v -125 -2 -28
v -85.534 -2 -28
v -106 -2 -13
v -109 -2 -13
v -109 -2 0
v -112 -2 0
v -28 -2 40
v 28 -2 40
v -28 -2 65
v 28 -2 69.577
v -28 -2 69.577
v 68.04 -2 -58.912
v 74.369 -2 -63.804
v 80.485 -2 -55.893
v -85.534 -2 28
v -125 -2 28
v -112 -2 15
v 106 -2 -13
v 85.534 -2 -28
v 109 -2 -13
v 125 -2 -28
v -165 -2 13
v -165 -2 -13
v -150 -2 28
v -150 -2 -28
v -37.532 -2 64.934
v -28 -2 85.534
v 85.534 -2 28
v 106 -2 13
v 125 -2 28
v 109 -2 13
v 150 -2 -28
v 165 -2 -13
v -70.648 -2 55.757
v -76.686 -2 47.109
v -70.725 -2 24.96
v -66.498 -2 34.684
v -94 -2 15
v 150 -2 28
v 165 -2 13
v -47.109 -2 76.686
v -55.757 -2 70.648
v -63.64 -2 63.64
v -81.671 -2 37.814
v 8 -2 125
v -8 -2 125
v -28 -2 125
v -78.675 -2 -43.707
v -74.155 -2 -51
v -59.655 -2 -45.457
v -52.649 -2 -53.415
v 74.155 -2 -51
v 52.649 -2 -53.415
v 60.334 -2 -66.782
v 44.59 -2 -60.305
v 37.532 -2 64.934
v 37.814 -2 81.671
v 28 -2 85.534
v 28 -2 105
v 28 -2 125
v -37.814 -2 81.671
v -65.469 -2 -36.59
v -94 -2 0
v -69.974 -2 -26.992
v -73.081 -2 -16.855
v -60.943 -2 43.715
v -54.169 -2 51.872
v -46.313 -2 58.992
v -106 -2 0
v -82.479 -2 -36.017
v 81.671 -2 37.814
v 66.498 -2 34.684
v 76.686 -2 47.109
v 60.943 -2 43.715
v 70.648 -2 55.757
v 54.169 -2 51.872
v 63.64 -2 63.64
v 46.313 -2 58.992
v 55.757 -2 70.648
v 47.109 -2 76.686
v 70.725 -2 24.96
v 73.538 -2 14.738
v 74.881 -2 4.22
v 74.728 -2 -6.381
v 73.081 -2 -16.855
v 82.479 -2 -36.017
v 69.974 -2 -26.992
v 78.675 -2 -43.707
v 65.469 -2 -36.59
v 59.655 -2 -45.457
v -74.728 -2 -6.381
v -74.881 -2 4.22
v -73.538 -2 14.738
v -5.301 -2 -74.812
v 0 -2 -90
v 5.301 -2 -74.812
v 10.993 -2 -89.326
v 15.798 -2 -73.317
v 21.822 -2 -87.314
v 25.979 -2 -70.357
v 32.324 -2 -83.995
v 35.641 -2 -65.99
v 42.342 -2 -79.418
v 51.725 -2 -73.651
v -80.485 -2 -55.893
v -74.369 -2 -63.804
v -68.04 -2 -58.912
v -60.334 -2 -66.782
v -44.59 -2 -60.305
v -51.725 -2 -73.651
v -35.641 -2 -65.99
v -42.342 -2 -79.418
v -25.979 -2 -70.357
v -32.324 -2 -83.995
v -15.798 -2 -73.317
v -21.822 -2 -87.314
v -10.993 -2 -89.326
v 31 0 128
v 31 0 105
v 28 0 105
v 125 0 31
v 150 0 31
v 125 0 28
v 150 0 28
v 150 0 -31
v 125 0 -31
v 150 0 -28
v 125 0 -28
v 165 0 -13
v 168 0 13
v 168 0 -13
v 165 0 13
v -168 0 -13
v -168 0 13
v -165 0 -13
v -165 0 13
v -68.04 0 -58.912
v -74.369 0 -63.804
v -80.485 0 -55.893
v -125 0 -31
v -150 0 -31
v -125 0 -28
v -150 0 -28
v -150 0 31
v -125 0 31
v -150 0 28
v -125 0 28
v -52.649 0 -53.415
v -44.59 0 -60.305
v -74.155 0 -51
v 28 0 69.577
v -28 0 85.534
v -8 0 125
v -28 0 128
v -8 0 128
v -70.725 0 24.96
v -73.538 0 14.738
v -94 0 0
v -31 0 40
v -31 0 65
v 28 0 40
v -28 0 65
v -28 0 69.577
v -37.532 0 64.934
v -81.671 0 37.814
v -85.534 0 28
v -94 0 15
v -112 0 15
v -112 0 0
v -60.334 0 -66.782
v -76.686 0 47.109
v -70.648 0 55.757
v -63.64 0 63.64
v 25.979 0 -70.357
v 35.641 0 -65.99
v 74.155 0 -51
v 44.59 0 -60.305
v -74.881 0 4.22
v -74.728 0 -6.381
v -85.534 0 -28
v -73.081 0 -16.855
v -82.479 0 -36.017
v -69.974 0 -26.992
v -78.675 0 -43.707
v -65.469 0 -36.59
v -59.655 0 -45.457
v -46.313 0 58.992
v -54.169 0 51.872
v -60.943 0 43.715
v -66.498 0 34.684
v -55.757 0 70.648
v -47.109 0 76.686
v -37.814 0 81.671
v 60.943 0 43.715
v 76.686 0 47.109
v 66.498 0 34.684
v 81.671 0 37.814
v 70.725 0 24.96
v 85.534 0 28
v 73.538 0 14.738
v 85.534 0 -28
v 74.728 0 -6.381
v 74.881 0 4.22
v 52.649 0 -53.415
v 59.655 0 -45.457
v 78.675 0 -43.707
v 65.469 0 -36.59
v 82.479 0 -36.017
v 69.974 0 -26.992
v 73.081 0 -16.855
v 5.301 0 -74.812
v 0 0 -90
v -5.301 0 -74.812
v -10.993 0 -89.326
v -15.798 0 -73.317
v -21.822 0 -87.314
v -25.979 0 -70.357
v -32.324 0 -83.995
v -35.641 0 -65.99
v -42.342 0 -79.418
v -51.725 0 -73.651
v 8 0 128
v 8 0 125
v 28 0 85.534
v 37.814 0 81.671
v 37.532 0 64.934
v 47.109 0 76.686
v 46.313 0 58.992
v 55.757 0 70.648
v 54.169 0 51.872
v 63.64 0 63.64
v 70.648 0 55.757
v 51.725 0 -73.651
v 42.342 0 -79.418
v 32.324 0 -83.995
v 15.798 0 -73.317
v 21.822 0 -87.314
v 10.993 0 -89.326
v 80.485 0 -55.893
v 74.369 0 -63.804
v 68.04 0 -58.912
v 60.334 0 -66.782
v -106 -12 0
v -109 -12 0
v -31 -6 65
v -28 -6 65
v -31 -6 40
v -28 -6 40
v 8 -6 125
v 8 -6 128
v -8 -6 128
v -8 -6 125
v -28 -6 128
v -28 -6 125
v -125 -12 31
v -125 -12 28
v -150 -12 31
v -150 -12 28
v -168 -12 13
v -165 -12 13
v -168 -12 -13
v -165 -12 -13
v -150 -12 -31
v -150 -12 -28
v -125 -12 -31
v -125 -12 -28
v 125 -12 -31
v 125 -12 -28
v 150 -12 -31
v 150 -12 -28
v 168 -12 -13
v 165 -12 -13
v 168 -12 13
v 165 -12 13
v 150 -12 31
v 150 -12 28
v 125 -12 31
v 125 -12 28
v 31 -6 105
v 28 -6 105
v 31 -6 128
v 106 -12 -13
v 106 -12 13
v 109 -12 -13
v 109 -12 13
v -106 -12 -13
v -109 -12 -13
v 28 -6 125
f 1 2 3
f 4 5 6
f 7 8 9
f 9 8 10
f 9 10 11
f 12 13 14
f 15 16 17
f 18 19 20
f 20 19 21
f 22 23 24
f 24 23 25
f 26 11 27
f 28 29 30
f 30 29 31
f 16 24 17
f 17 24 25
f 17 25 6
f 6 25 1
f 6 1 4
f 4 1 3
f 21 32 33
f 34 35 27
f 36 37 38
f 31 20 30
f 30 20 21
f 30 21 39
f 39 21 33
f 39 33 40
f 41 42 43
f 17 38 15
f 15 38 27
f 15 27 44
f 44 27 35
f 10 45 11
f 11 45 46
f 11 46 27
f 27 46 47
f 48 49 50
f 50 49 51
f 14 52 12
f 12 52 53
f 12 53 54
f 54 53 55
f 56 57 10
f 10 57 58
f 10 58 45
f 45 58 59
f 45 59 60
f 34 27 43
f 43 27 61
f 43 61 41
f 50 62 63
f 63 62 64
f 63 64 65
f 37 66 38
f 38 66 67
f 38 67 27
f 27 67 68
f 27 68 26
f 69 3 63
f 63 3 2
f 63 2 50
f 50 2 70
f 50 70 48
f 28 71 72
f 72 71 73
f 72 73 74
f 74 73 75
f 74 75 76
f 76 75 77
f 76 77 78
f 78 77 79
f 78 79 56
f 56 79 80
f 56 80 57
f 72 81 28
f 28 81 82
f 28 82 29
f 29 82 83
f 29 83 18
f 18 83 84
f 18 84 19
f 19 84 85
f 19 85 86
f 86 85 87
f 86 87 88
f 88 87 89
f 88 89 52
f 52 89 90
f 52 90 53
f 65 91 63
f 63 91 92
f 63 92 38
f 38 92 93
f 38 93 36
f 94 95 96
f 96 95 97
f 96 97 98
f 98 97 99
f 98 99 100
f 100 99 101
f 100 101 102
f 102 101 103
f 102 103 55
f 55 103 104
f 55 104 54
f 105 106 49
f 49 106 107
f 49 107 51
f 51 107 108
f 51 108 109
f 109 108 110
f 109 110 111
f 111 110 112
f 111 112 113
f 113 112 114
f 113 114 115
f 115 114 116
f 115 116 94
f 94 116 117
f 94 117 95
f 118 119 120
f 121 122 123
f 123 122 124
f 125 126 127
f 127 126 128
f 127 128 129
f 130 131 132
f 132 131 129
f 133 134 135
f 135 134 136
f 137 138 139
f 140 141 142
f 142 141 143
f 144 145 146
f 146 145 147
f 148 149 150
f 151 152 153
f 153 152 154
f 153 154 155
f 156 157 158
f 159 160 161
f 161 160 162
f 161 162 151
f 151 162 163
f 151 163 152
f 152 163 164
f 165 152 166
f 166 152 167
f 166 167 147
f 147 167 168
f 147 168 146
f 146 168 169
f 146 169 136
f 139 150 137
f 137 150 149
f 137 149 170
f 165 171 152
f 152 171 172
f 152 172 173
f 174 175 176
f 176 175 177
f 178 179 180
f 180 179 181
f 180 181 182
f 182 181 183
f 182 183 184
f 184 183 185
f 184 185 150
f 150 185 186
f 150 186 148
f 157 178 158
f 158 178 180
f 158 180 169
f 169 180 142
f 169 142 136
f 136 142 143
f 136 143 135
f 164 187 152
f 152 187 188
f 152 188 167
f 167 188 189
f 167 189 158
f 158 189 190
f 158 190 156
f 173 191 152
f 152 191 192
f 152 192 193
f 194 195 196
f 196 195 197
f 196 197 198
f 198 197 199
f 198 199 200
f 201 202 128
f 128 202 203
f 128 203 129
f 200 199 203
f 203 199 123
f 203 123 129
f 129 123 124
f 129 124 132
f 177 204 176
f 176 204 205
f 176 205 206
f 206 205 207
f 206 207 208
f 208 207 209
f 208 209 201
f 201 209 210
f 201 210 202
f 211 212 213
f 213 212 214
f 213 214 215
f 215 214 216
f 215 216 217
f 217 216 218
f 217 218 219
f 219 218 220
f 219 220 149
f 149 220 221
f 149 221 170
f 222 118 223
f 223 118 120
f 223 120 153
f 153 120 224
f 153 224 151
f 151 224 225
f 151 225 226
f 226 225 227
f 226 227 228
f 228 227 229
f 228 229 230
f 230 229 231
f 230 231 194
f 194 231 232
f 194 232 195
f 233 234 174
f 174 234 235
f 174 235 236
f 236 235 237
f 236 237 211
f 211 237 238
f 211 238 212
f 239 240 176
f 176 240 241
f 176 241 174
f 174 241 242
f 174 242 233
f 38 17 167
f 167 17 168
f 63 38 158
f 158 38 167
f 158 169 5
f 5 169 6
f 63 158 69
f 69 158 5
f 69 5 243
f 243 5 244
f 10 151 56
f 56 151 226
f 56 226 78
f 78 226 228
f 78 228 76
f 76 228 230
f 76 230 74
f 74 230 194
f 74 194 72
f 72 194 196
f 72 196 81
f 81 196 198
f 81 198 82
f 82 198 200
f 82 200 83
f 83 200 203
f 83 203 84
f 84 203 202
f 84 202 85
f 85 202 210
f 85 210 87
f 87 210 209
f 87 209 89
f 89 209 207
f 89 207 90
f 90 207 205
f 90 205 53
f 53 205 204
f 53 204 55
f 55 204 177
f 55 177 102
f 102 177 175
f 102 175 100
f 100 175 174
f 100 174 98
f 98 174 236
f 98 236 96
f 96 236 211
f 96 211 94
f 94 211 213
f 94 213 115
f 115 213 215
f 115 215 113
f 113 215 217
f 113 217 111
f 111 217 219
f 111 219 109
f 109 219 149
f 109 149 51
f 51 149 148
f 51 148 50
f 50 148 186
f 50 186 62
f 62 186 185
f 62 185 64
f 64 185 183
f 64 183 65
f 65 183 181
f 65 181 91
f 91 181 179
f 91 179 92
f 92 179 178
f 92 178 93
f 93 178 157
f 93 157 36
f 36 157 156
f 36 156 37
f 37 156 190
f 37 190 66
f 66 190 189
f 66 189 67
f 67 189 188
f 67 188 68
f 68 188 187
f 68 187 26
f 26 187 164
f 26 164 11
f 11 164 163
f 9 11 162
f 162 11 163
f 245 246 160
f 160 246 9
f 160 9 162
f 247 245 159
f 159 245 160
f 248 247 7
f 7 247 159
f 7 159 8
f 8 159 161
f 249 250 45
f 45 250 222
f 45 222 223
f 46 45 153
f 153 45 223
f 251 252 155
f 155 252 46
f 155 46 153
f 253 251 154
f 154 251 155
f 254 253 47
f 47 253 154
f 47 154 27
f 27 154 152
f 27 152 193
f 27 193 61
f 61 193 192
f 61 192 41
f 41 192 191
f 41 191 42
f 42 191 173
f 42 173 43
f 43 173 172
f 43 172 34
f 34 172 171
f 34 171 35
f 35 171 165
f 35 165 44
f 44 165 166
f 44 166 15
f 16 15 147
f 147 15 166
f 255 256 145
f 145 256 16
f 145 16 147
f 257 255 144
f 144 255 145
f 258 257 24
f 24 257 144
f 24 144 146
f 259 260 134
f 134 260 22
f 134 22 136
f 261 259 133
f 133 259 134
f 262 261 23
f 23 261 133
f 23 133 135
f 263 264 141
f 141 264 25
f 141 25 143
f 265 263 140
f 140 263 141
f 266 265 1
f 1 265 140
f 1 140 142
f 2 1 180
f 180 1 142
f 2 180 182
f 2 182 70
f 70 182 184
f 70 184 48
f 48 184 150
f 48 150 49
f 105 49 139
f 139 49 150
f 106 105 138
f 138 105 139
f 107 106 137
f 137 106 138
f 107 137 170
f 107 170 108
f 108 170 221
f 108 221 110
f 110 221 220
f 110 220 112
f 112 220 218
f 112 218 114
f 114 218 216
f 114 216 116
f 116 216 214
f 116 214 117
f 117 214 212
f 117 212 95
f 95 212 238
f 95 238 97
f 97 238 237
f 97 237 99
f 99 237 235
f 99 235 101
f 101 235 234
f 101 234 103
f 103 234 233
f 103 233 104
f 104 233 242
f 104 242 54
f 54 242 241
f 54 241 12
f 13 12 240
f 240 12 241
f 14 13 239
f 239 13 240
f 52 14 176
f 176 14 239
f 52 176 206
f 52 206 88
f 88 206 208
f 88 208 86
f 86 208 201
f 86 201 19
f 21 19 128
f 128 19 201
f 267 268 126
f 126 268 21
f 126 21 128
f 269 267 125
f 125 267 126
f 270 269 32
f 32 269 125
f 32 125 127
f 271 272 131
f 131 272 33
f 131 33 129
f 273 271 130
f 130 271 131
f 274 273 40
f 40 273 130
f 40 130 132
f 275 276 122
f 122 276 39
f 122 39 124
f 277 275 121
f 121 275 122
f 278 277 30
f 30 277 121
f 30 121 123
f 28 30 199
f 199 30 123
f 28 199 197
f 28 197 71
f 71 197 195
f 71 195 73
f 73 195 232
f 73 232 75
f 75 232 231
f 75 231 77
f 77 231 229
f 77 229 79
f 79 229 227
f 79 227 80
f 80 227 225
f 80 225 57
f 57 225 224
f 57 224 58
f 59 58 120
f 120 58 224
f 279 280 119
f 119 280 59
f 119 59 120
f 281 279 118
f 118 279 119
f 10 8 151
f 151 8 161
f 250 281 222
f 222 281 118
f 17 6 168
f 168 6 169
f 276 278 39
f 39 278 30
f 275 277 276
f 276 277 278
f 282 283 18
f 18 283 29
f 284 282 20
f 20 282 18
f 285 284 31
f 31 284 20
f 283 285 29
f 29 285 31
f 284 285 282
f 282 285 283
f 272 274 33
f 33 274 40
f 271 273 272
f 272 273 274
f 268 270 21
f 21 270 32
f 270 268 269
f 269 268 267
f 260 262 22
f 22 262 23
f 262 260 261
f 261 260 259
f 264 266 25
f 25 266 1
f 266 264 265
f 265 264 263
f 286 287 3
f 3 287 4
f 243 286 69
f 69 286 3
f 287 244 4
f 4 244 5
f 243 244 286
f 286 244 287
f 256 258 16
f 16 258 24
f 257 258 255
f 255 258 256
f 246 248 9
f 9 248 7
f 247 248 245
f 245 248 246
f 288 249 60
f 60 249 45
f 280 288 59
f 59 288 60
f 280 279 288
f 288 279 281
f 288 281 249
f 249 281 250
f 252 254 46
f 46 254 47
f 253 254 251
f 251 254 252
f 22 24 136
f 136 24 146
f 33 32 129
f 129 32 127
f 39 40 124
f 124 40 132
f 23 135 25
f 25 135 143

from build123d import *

# Parameters (mm, degrees)
SKETCH1_W           = 25
SKETCH1_H           = 3
SKETCH1_W_2         = 3
SKETCH1_H_2         = 9
SKETCH1_W_3         = 4
SKETCH1_H_3         = 4
SKETCH1_H_4         = 15
SKETCH1_W_4         = 20
SKETCH1_H_5         = 25
SKETCH1_H_6         = 13
BOSS_EXTRUDE3_DEPTH = 2
SKETCH2_W           = 25
SKETCH2_H           = 3
SKETCH2_W_2         = 3
SKETCH2_H_2         = 26
SKETCH2_H_3         = 13
BOSS_EXTRUDE4_DEPTH = 10
SKETCH3_W           = 3
SKETCH3_H           = 25
SKETCH3_H_2         = 20
SKETCH3_W_2         = 23
SKETCH3_H_3         = 3
SKETCH3_W_3         = 20
BOSS_EXTRUDE5_DEPTH = 4
CUT_EXTRUDE1_DEPTH  = 10


with BuildPart() as part:
    # Sketch1 → Boss-Extrude3 (new body)
    with BuildSketch(Plane(origin=(0, 0, 0), x_dir=(1, 0, 0), z_dir=(0, 1, 0))):
        with BuildLine():
            ThreePointArc((-90, 0), (-88.904443084, -14), (-85.644444444, -27.65916007))
            ThreePointArc((-85.644444444, -27.65916007), (-78.335965046, -25.45486768), (-71.894444444, -21.35857809))
            ThreePointArc((-71.894444444, -21.35857809), (-74.219550434, -10.791586229), (-75, 0))
            Line((-75, 0), (-90, 0))
        make_face()
        with BuildLine():
            ThreePointArc((-85.644444444, 27.65916007), (-88.904443084, 14), (-90, 0))
            Line((-90, 0), (-75, 0))
            ThreePointArc((-75, 0), (-74.219550434, 10.791586229), (-71.894444444, 21.35857809))
            ThreePointArc((-71.894444444, 21.35857809), (-78.335965046, 25.45486768), (-85.644444444, 27.65916007))
        make_face()
        with BuildLine():
            ThreePointArc((-90, 0), (-88.904443084, -14), (-85.644444444, -27.65916007))
            ThreePointArc((-85.644444444, -27.65916007), (-78.335965046, -25.45486768), (-71.894444444, -21.35857809))
            ThreePointArc((-71.894444444, -21.35857809), (-74.219550434, -10.791586229), (-75, 0))
            Line((-75, 0), (-90, 0))
        make_face()
        with BuildLine():
            ThreePointArc((-85.644444444, 27.65916007), (-88.904443084, 14), (-90, 0))
            Line((-90, 0), (-75, 0))
            ThreePointArc((-75, 0), (-74.219550434, 10.791586229), (-71.894444444, 21.35857809))
            ThreePointArc((-71.894444444, 21.35857809), (-78.335965046, 25.45486768), (-85.644444444, 27.65916007))
        make_face()
        with BuildLine():
            ThreePointArc((-85.644444444, -27.65916007), (-85.589201448, -27.829635202), (-85.533619121, -28))
            Line((-85.533619121, -28), (-69.577295147, -28))
            ThreePointArc((-69.577295147, -28), (-70.813772651, -24.706468849), (-71.894444444, -21.35857809))
            ThreePointArc((-71.894444444, -21.35857809), (-78.335965046, -25.45486768), (-85.644444444, -27.65916007))
        make_face()
        with BuildLine():
            ThreePointArc((-85.533619121, -28), (-63.639610307, -63.639610307), (-28, -85.533619121))
            Line((-28, -85.533619121), (-28, -69.577295147))
            ThreePointArc((-28, -69.577295147), (-53.033008589, -53.033008589), (-69.577295147, -28))
            Line((-69.577295147, -28), (-85.533619121, -28))
        make_face()
        with BuildLine():
            ThreePointArc((-85.533619121, 28), (-85.589201448, 27.829635202), (-85.644444444, 27.65916007))
            ThreePointArc((-85.644444444, 27.65916007), (-78.335965046, 25.45486768), (-71.894444444, 21.35857809))
            ThreePointArc((-71.894444444, 21.35857809), (-70.813772651, 24.706468849), (-69.577295147, 28))
            Line((-69.577295147, 28), (-85.533619121, 28))
        make_face()
        with BuildLine():
            ThreePointArc((-69.577295147, 28), (-41.982139059, 62.149014473), (0, 75))
            Line((0, 75), (0, 90))
            ThreePointArc((0, 90), (-37.402714895, 81.859861461), (-68.039579102, 58.911931521))
            Line((-68.039579102, 58.911931521), (-74.155242566, 51))
            ThreePointArc((-74.155242566, 51), (-80.668352758, 39.907604078), (-85.533619121, 28))
            Line((-85.533619121, 28), (-69.577295147, 28))
        make_face()
        with BuildLine():
            Line((-80.484787783, 55.892530771), (-74.155242566, 51))
            ThreePointArc((-74.155242566, 51), (-71.207383693, 55.040971172), (-68.039579102, 58.911931521))
            Line((-68.039579102, 58.911931521), (-74.369124319, 63.804462292))
            Line((-74.369124319, 63.804462292), (-80.484787783, 55.892530771))
        make_face()
        with BuildLine():
            Line((0, 90), (0, 75))
            ThreePointArc((0, 75), (41.982139059, 62.149014473), (69.577295147, 28))
            Line((69.577295147, 28), (85.533619121, 28))
            ThreePointArc((85.533619121, 28), (80.668352758, 39.907604078), (74.155242566, 51))
            Line((74.155242566, 51), (68.039579102, 58.911931521))
            ThreePointArc((68.039579102, 58.911931521), (37.402714895, 81.859861461), (0, 90))
        make_face()
        with BuildLine():
            ThreePointArc((68.039579102, 58.911931521), (71.207383693, 55.040971172), (74.155242566, 51))
            Line((74.155242566, 51), (80.484787783, 55.892530771))
            Line((80.484787783, 55.892530771), (74.369124319, 63.804462292))
            Line((74.369124319, 63.804462292), (68.039579102, 58.911931521))
        make_face()
        with BuildLine():
            ThreePointArc((71.894444444, 21.35857809), (78.335965046, 25.45486768), (85.644444444, 27.65916007))
            ThreePointArc((85.644444444, 27.65916007), (85.589201448, 27.829635202), (85.533619121, 28))
            Line((85.533619121, 28), (69.577295147, 28))
            ThreePointArc((69.577295147, 28), (70.813772651, 24.706468849), (71.894444444, 21.35857809))
        make_face()
        with BuildLine():
            Line((68.039579102, 58.911931521), (74.155242566, 51))
            ThreePointArc((74.155242566, 51), (71.207383693, 55.040971172), (68.039579102, 58.911931521))
        make_face()
        with BuildLine():
            ThreePointArc((-68.039579102, 58.911931521), (-71.207383693, 55.040971172), (-74.155242566, 51))
            Line((-74.155242566, 51), (-68.039579102, 58.911931521))
        make_face()
        with BuildLine():
            ThreePointArc((71.894444444, -21.35857809), (78.335965046, -25.45486768), (85.644444444, -27.65916007))
            ThreePointArc((85.644444444, -27.65916007), (88.904443084, -14), (90, 0))
            Line((90, 0), (75, 0))
            ThreePointArc((75, 0), (74.219550434, -10.791586229), (71.894444444, -21.35857809))
        make_face()
        with BuildLine():
            Line((75, 0), (90, 0))
            ThreePointArc((90, 0), (88.904443084, 14), (85.644444444, 27.65916007))
            ThreePointArc((85.644444444, 27.65916007), (78.335965046, 25.45486768), (71.894444444, 21.35857809))
            ThreePointArc((71.894444444, 21.35857809), (74.219550434, 10.791586229), (75, 0))
        make_face()
        with BuildLine():
            ThreePointArc((71.894444444, -21.35857809), (78.335965046, -25.45486768), (85.644444444, -27.65916007))
            ThreePointArc((85.644444444, -27.65916007), (88.904443084, -14), (90, 0))
            Line((90, 0), (75, 0))
            ThreePointArc((75, 0), (74.219550434, -10.791586229), (71.894444444, -21.35857809))
        make_face()
        with BuildLine():
            Line((75, 0), (90, 0))
            ThreePointArc((90, 0), (88.904443084, 14), (85.644444444, 27.65916007))
            ThreePointArc((85.644444444, 27.65916007), (78.335965046, 25.45486768), (71.894444444, 21.35857809))
            ThreePointArc((71.894444444, 21.35857809), (74.219550434, 10.791586229), (75, 0))
        make_face()
        with BuildLine():
            Line((69.577295147, -28), (85.533619121, -28))
            ThreePointArc((85.533619121, -28), (85.589201448, -27.829635202), (85.644444444, -27.65916007))
            ThreePointArc((85.644444444, -27.65916007), (78.335965046, -25.45486768), (71.894444444, -21.35857809))
            ThreePointArc((71.894444444, -21.35857809), (70.813772651, -24.706468849), (69.577295147, -28))
        make_face()
        with BuildLine():
            Line((28, -69.577295147), (28, -85.533619121))
            ThreePointArc((28, -85.533619121), (63.639610307, -63.639610307), (85.533619121, -28))
            Line((85.533619121, -28), (69.577295147, -28))
            ThreePointArc((69.577295147, -28), (53.033008589, -53.033008589), (28, -69.577295147))
        make_face()
        with BuildLine():
            ThreePointArc((-28, -85.533619121), (-14.176993318, -88.876390906), (0, -90))
            Line((0, -90), (0, -75))
            ThreePointArc((0, -75), (-14.260134361, -73.631844796), (-28, -69.577295147))
            Line((-28, -69.577295147), (-28, -85.533619121))
        make_face()
        with BuildLine():
            Line((0, -75), (0, -90))
            ThreePointArc((0, -90), (14.176993318, -88.876390906), (28, -85.533619121))
            Line((28, -85.533619121), (28, -69.577295147))
            ThreePointArc((28, -69.577295147), (14.260134361, -73.631844796), (0, -75))
        make_face()
        with BuildLine():
            Line((-165, 4), (-117.712812921, 4))
            ThreePointArc((-117.712812921, 4), (-115.733245539, 11.036307083), (-112, 17.320508076))
            Line((-112, 17.320508076), (-112, 28))
            Line((-112, 28), (-125, 28))
            Line((-125, 28), (-150, 28))
            Line((-150, 28), (-165, 28))
            Line((-165, 28), (-165, 13))
            Line((-165, 13), (-165, 4))
        make_face()
        with BuildLine():
            ThreePointArc((-112, 17.320508076), (-102.227546235, 25.189027632), (-90, 28))
            Line((-90, 28), (-112, 28))
            Line((-112, 28), (-112, 17.320508076))
        make_face()
        with Locations((-137.5, 29.5)):
            Rectangle(SKETCH1_W, SKETCH1_H)
        with BuildLine():
            Line((-165, 0), (-118, 0))
            ThreePointArc((-118, 0), (-117.928110944, 2.00514815), (-117.712812921, 4))
            Line((-117.712812921, 4), (-165, 4))
            Line((-165, 4), (-165, 0))
        make_face()
        with BuildLine():
            Line((-165, -15), (-113.643180835, -15))
            ThreePointArc((-113.643180835, -15), (-116.888743587, -7.809959559), (-118, 0))
            Line((-118, 0), (-165, 0))
            Line((-165, 0), (-165, -13))
            Line((-165, -13), (-165, -15))
        make_face()
        Polygon((-168, -13), (-165, -13), (-165, 0), (-165, 4), (-165, 13), (-168, 13), align=None)
        with BuildLine():
            Line((-118, 0), (-112, 0))
            Line((-112, 0), (-112, 4))
            Line((-112, 4), (-117.712812921, 4))
            ThreePointArc((-117.712812921, 4), (-117.928110944, 2.00514815), (-118, 0))
        make_face()
        with BuildLine():
            Line((-117.712812921, 4), (-112, 4))
            Line((-112, 4), (-112, 13))
            Line((-112, 13), (-112, 17.320508076))
            ThreePointArc((-112, 17.320508076), (-115.733245539, 11.036307083), (-117.712812921, 4))
        make_face()
        with BuildLine():
            Line((-113.643180835, -15), (-112, -15))
            Line((-112, -15), (-112, 0))
            Line((-112, 0), (-118, 0))
            ThreePointArc((-118, 0), (-116.888743587, -7.809959559), (-113.643180835, -15))
        make_face()
        with Locations((-110.5, 8.5)):
            Rectangle(SKETCH1_W_2, SKETCH1_H_2)
        with BuildLine():
            Line((-94, 4), (-90, 4))
            Line((-90, 4), (-90, 28))
            ThreePointArc((-90, 28), (-102.227546235, 25.189027632), (-112, 17.320508076))
            Line((-112, 17.320508076), (-112, 13))
            Line((-112, 13), (-109, 13))
            Line((-109, 13), (-109, 4))
            Line((-109, 4), (-94, 4))
        make_face()
        with BuildLine():
            Line((-90, -15), (-90, -28))
            ThreePointArc((-90, -28), (-87.815564372, -27.914659965), (-85.644444444, -27.65916007))
            ThreePointArc((-85.644444444, -27.65916007), (-88.904443084, -14), (-90, 0))
            Line((-90, 0), (-90, -15))
        make_face()
        with BuildLine():
            Line((-90, 4), (-90, 0))
            ThreePointArc((-90, 0), (-88.904443084, 14), (-85.644444444, 27.65916007))
            ThreePointArc((-85.644444444, 27.65916007), (-87.815564372, 27.914659965), (-90, 28))
            Line((-90, 28), (-90, 4))
        make_face()
        Polygon((-112, 0), (-94, 0), (-94, 4), (-109, 4), (-112, 4), align=None)
        with Locations((-92, 2)):
            Rectangle(SKETCH1_W_3, SKETCH1_H_3)
        with Locations((-92, -7.5)):
            Rectangle(SKETCH1_W_3, SKETCH1_H_4)
        with BuildLine():
            Line((-125, -28), (-112, -28))
            Line((-112, -28), (-112, -17.320508076))
            ThreePointArc((-112, -17.320508076), (-112.851065153, -16.181125467), (-113.643180835, -15))
            Line((-113.643180835, -15), (-165, -15))
            Line((-165, -15), (-165, -28))
            Line((-165, -28), (-150, -28))
            Line((-150, -28), (-125, -28))
        make_face()
        with Locations((-137.5, -29.5)):
            Rectangle(SKETCH1_W, SKETCH1_H)
        with BuildLine():
            ThreePointArc((-113.643180835, -15), (-112.851065153, -16.181125467), (-112, -17.320508076))
            Line((-112, -17.320508076), (-112, -15))
            Line((-112, -15), (-113.643180835, -15))
        make_face()
        with BuildLine():
            ThreePointArc((-112, -17.320508076), (-102.227546235, -25.189027632), (-90, -28))
            Line((-90, -28), (-90, -15))
            Line((-90, -15), (-94, -15))
            Line((-94, -15), (-112, -15))
            Line((-112, -15), (-112, -17.320508076))
        make_face()
        with BuildLine():
            Line((-112, -28), (-90, -28))
            ThreePointArc((-90, -28), (-102.227546235, -25.189027632), (-112, -17.320508076))
            Line((-112, -17.320508076), (-112, -28))
        make_face()
        with BuildLine():
            Line((-90, -15), (-90, -28))
            ThreePointArc((-90, -28), (-87.815564372, -27.914659965), (-85.644444444, -27.65916007))
            ThreePointArc((-85.644444444, -27.65916007), (-88.904443084, -14), (-90, 0))
            Line((-90, 0), (-90, -15))
        make_face()
        with BuildLine():
            Line((-90, 4), (-90, 0))
            ThreePointArc((-90, 0), (-88.904443084, 14), (-85.644444444, 27.65916007))
            ThreePointArc((-85.644444444, 27.65916007), (-87.815564372, 27.914659965), (-90, 28))
            Line((-90, 28), (-90, 4))
        make_face()
        with BuildLine():
            Line((-90, -28), (-85.533619121, -28))
            ThreePointArc((-85.533619121, -28), (-85.589201448, -27.829635202), (-85.644444444, -27.65916007))
            ThreePointArc((-85.644444444, -27.65916007), (-87.815564372, -27.914659965), (-90, -28))
        make_face()
        with BuildLine():
            ThreePointArc((28, -85.533619121), (14.176993318, -88.876390906), (0, -90))
            ThreePointArc((0, -90), (-14.176993318, -88.876390906), (-28, -85.533619121))
            Line((-28, -85.533619121), (-28, -125))
            Line((-28, -125), (-8, -125))
            Line((-8, -125), (8, -125))
            Line((8, -125), (28, -125))
            Line((28, -125), (28, -105))
            Line((28, -105), (28, -85.533619121))
        make_face()
        with Locations((-18, -126.5)):
            Rectangle(SKETCH1_W_4, SKETCH1_H)
        with Locations((18, -126.5)):
            Rectangle(SKETCH1_W_4, SKETCH1_H)
        Polygon((31, -105), (28, -105), (28, -125), (28, -128), (31, -128), align=None)
        with BuildLine():
            ThreePointArc((-28, -69.577295147), (-14.260134361, -73.631844796), (0, -75))
            Line((0, -75), (0, -40))
            Line((0, -40), (-28, -40))
            Line((-28, -40), (-28, -65))
            Line((-28, -65), (-28, -69.577295147))
        make_face()
        with BuildLine():
            Line((0, -40), (0, -75))
            ThreePointArc((0, -75), (14.260134361, -73.631844796), (28, -69.577295147))
            Line((28, -69.577295147), (28, -40))
            Line((28, -40), (0, -40))
        make_face()
        with Locations((-29.5, -52.5)):
            Rectangle(SKETCH1_W_2, SKETCH1_H_5)
        with BuildLine():
            ThreePointArc((85.644444444, -27.65916007), (87.815564372, -27.914659965), (90, -28))
            Line((90, -28), (90, 0))
            ThreePointArc((90, 0), (88.904443084, -14), (85.644444444, -27.65916007))
        make_face()
        with BuildLine():
            ThreePointArc((85.644444444, 27.65916007), (88.904443084, 14), (90, 0))
            Line((90, 0), (90, 28))
            ThreePointArc((90, 28), (87.815564372, 27.914659965), (85.644444444, 27.65916007))
        make_face()
        with BuildLine():
            ThreePointArc((85.644444444, -27.65916007), (87.815564372, -27.914659965), (90, -28))
            Line((90, -28), (90, 0))
            ThreePointArc((90, 0), (88.904443084, -14), (85.644444444, -27.65916007))
        make_face()
        with BuildLine():
            ThreePointArc((85.644444444, 27.65916007), (88.904443084, 14), (90, 0))
            Line((90, 0), (90, 28))
            ThreePointArc((90, 28), (87.815564372, 27.914659965), (85.644444444, 27.65916007))
        make_face()
        with BuildLine():
            ThreePointArc((85.644444444, 27.65916007), (87.815564372, 27.914659965), (90, 28))
            Line((90, 28), (85.533619121, 28))
            ThreePointArc((85.533619121, 28), (85.589201448, 27.829635202), (85.644444444, 27.65916007))
        make_face()
        with BuildLine():
            Line((90, 28), (90, 0))
            Line((90, 0), (107, 0))
            Line((107, 0), (107, 13))
            Line((107, 13), (110, 13))
            Line((110, 13), (110, 0))
            Line((110, 0), (118, 0))
            ThreePointArc((118, 0), (109.798989873, 19.798989873), (90, 28))
        make_face()
        with BuildLine():
            ThreePointArc((90, 28), (109.798989873, 19.798989873), (118, 0))
            Line((118, 0), (165, 0))
            Line((165, 0), (165, 13))
            Line((165, 13), (165, 28))
            Line((165, 28), (150, 28))
            Line((150, 28), (125, 28))
            Line((125, 28), (90, 28))
        make_face()
        with BuildLine():
            ThreePointArc((85.644444444, -27.65916007), (85.589201448, -27.829635202), (85.533619121, -28))
            Line((85.533619121, -28), (90, -28))
            ThreePointArc((90, -28), (87.815564372, -27.914659965), (85.644444444, -27.65916007))
        make_face()
        with BuildLine():
            Line((90, 0), (90, -28))
            ThreePointArc((90, -28), (109.798989873, -19.798989873), (118, 0))
            Line((118, 0), (110, 0))
            Line((110, 0), (110, -13))
            Line((110, -13), (107, -13))
            Line((107, -13), (107, 0))
            Line((107, 0), (90, 0))
        make_face()
        with BuildLine():
            ThreePointArc((118, 0), (109.798989873, -19.798989873), (90, -28))
            Line((90, -28), (125, -28))
            Line((125, -28), (150, -28))
            Line((150, -28), (165, -28))
            Line((165, -28), (165, -13))
            Line((165, -13), (165, 0))
            Line((165, 0), (118, 0))
        make_face()
        Polygon((165, 13), (165, 0), (165, -13), (168, -13), (168, 13), align=None)
        with Locations((137.5, -29.5)):
            Rectangle(SKETCH1_W, SKETCH1_H)
        with Locations((137.5, 29.5)):
            Rectangle(SKETCH1_W, SKETCH1_H)
        with Locations((108.5, 6.5)):
            Rectangle(SKETCH1_W_2, SKETCH1_H_6)
        with Locations((108.5, -6.5)):
            Rectangle(SKETCH1_W_2, SKETCH1_H_6)
        with BuildLine():
            ThreePointArc((-90, 28), (-87.815564372, 27.914659965), (-85.644444444, 27.65916007))
            ThreePointArc((-85.644444444, 27.65916007), (-85.589201448, 27.829635202), (-85.533619121, 28))
            Line((-85.533619121, 28), (-90, 28))
        make_face()
    extrude(amount=-BOSS_EXTRUDE3_DEPTH)

    # Sketch2 → Boss-Extrude4 (add)
    with BuildSketch(Plane.XZ.offset(2)):
        with Locations((137.5, 29.5)):
            Rectangle(SKETCH2_W, SKETCH2_H)
        with Locations((107.5, 0)):
            Rectangle(SKETCH2_W_2, SKETCH2_H_2)
        with Locations((166.5, 0)):
            Rectangle(SKETCH2_W_2, SKETCH2_H_2)
        with Locations((137.5, -29.5)):
            Rectangle(SKETCH2_W, SKETCH2_H)
        with Locations((-166.5, 0)):
            Rectangle(SKETCH2_W_2, SKETCH2_H_2)
        with Locations((-137.5, -29.5)):
            Rectangle(SKETCH2_W, SKETCH2_H)
        with Locations((-107.5, -6.5)):
            Rectangle(SKETCH2_W_2, SKETCH2_H_3)
        with Locations((-137.5, 29.5)):
            Rectangle(SKETCH2_W, SKETCH2_H)
    extrude(amount=BOSS_EXTRUDE4_DEPTH)

    # Sketch3 → Boss-Extrude5 (add)
    with BuildSketch(Plane(origin=(0, -2, 0), x_dir=(-1, 0, 0), z_dir=(0, -1, 0))):
        with Locations((29.5, -52.5)):
            Rectangle(SKETCH3_W, SKETCH3_H)
        with Locations((-29.5, -115)):
            Rectangle(SKETCH3_W, SKETCH3_H_2)
        with Locations((-19.5, -126.5)):
            Rectangle(SKETCH3_W_2, SKETCH3_H_3)
        with Locations((18, -126.5)):
            Rectangle(SKETCH3_W_3, SKETCH3_H_3)
    extrude(amount=BOSS_EXTRUDE5_DEPTH)

    # Sketch4 → Cut-Extrude1 (cut)
    with BuildSketch(Plane.XZ.offset(2)):
        Polygon((-150, 28), (-165, 28), (-165, 13), align=None)
        Polygon((-165, -13), (-165, -28), (-150, -28), align=None)
        Polygon((165, 28), (165, 13), (150, 28), align=None)
        Polygon((165, -28), (150, -28), (165, -13), align=None)
    extrude(amount=-CUT_EXTRUDE1_DEPTH, mode=Mode.SUBTRACT)


solid = part.part
